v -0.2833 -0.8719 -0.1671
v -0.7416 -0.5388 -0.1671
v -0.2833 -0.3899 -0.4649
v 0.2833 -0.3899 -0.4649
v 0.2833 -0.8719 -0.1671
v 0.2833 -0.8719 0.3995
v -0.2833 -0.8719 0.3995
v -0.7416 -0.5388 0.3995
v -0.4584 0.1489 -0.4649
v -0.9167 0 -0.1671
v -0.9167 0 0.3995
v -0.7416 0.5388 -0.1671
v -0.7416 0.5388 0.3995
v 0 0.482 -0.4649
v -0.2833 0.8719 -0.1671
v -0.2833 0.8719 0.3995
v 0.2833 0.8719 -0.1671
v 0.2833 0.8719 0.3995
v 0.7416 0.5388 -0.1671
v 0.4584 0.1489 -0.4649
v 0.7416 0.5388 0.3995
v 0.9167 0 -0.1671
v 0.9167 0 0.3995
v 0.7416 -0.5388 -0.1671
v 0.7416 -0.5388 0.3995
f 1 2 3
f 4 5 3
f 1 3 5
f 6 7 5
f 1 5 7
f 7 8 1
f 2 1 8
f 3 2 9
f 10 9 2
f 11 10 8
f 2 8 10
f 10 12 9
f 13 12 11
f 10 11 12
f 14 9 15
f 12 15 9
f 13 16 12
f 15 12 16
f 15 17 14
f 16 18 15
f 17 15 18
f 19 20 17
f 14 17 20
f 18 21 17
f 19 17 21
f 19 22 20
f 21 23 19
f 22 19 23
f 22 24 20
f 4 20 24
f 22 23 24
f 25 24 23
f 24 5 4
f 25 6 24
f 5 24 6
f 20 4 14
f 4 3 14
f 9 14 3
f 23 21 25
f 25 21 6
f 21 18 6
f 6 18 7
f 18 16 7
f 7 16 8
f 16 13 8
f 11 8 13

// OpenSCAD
polyhedron( points = [[-0.283284291295216, -0.871859401580279, -0.167054887194565], [-0.741647904061916, -0.538838743564784, -0.167054887194565], [-0.916727225225857, 1.63002333446225e-11, -0.167054887194565], [-0.741647904833367, 0.53883874358166, -0.167054887194565], [-0.283284292543451, 0.871859401555996, -0.167054887194565], [0.283284290965, 0.871859401556002, -0.167054887194565], [0.7416479037616, 0.53883874358166, -0.167054887194565], [0.916727224973926, 1.63002333446225e-11, -0.167054887194565], [0.741647904629827, -0.538838743564781, -0.167054887194565], [0.28328429236981, -0.871859401580279, -0.167054887194565], [-0.283284291269779, -0.389907377248581, -0.464917618348307], [-0.458363612054341, 0.148931365606272, -0.464917618660191], [5.95258401165463e-10, 0.481952023389584, -0.464917618660191], [0.458363613164756, 0.148931365496023, -0.464917618660192], [0.283284292205843, -0.389907377366421, -0.464917618275478], [-0.283284291269779, -0.871859401501992, 0.399513696470461], [0.283284292342397, -0.871859401501992, 0.399513696366737], [0.741647904563227, -0.538838743516397, 0.399513696470461], [0.916727224915196, 8.8877780592134e-11, 0.399513696445024], [0.741647903695006, 0.538838743533275, 0.399513696470461], [0.283284290877826, 0.871859401522568, 0.399513696445024], [-0.283284292518015, 0.871859401477713, 0.399513696470461], [-0.741647904828509, 0.53883874348842, 0.399513696445024], [-0.91672722514354, 1.63002333446225e-11, 0.399513696470461], [-0.7416479040159, -0.538838743501448, 0.3995136964959]], faces = [[0, 1, 10], [0, 10, 14, 9], [0, 9, 16, 15], [0, 15, 24, 1], [1, 2, 11, 10], [1, 24, 23, 2], [2, 3, 11], [2, 23, 22, 3], [3, 4, 12, 11], [3, 22, 21, 4], [4, 5, 12], [4, 21, 20, 5], [5, 6, 13, 12], [5, 20, 19, 6], [6, 7, 13], [6, 19, 18, 7], [7, 8, 14, 13], [7, 18, 17, 8], [8, 9, 14], [8, 17, 16, 9], [10, 11, 12, 13, 14], [15, 16, 17, 18, 19, 20, 21, 22, 23, 24]]);
